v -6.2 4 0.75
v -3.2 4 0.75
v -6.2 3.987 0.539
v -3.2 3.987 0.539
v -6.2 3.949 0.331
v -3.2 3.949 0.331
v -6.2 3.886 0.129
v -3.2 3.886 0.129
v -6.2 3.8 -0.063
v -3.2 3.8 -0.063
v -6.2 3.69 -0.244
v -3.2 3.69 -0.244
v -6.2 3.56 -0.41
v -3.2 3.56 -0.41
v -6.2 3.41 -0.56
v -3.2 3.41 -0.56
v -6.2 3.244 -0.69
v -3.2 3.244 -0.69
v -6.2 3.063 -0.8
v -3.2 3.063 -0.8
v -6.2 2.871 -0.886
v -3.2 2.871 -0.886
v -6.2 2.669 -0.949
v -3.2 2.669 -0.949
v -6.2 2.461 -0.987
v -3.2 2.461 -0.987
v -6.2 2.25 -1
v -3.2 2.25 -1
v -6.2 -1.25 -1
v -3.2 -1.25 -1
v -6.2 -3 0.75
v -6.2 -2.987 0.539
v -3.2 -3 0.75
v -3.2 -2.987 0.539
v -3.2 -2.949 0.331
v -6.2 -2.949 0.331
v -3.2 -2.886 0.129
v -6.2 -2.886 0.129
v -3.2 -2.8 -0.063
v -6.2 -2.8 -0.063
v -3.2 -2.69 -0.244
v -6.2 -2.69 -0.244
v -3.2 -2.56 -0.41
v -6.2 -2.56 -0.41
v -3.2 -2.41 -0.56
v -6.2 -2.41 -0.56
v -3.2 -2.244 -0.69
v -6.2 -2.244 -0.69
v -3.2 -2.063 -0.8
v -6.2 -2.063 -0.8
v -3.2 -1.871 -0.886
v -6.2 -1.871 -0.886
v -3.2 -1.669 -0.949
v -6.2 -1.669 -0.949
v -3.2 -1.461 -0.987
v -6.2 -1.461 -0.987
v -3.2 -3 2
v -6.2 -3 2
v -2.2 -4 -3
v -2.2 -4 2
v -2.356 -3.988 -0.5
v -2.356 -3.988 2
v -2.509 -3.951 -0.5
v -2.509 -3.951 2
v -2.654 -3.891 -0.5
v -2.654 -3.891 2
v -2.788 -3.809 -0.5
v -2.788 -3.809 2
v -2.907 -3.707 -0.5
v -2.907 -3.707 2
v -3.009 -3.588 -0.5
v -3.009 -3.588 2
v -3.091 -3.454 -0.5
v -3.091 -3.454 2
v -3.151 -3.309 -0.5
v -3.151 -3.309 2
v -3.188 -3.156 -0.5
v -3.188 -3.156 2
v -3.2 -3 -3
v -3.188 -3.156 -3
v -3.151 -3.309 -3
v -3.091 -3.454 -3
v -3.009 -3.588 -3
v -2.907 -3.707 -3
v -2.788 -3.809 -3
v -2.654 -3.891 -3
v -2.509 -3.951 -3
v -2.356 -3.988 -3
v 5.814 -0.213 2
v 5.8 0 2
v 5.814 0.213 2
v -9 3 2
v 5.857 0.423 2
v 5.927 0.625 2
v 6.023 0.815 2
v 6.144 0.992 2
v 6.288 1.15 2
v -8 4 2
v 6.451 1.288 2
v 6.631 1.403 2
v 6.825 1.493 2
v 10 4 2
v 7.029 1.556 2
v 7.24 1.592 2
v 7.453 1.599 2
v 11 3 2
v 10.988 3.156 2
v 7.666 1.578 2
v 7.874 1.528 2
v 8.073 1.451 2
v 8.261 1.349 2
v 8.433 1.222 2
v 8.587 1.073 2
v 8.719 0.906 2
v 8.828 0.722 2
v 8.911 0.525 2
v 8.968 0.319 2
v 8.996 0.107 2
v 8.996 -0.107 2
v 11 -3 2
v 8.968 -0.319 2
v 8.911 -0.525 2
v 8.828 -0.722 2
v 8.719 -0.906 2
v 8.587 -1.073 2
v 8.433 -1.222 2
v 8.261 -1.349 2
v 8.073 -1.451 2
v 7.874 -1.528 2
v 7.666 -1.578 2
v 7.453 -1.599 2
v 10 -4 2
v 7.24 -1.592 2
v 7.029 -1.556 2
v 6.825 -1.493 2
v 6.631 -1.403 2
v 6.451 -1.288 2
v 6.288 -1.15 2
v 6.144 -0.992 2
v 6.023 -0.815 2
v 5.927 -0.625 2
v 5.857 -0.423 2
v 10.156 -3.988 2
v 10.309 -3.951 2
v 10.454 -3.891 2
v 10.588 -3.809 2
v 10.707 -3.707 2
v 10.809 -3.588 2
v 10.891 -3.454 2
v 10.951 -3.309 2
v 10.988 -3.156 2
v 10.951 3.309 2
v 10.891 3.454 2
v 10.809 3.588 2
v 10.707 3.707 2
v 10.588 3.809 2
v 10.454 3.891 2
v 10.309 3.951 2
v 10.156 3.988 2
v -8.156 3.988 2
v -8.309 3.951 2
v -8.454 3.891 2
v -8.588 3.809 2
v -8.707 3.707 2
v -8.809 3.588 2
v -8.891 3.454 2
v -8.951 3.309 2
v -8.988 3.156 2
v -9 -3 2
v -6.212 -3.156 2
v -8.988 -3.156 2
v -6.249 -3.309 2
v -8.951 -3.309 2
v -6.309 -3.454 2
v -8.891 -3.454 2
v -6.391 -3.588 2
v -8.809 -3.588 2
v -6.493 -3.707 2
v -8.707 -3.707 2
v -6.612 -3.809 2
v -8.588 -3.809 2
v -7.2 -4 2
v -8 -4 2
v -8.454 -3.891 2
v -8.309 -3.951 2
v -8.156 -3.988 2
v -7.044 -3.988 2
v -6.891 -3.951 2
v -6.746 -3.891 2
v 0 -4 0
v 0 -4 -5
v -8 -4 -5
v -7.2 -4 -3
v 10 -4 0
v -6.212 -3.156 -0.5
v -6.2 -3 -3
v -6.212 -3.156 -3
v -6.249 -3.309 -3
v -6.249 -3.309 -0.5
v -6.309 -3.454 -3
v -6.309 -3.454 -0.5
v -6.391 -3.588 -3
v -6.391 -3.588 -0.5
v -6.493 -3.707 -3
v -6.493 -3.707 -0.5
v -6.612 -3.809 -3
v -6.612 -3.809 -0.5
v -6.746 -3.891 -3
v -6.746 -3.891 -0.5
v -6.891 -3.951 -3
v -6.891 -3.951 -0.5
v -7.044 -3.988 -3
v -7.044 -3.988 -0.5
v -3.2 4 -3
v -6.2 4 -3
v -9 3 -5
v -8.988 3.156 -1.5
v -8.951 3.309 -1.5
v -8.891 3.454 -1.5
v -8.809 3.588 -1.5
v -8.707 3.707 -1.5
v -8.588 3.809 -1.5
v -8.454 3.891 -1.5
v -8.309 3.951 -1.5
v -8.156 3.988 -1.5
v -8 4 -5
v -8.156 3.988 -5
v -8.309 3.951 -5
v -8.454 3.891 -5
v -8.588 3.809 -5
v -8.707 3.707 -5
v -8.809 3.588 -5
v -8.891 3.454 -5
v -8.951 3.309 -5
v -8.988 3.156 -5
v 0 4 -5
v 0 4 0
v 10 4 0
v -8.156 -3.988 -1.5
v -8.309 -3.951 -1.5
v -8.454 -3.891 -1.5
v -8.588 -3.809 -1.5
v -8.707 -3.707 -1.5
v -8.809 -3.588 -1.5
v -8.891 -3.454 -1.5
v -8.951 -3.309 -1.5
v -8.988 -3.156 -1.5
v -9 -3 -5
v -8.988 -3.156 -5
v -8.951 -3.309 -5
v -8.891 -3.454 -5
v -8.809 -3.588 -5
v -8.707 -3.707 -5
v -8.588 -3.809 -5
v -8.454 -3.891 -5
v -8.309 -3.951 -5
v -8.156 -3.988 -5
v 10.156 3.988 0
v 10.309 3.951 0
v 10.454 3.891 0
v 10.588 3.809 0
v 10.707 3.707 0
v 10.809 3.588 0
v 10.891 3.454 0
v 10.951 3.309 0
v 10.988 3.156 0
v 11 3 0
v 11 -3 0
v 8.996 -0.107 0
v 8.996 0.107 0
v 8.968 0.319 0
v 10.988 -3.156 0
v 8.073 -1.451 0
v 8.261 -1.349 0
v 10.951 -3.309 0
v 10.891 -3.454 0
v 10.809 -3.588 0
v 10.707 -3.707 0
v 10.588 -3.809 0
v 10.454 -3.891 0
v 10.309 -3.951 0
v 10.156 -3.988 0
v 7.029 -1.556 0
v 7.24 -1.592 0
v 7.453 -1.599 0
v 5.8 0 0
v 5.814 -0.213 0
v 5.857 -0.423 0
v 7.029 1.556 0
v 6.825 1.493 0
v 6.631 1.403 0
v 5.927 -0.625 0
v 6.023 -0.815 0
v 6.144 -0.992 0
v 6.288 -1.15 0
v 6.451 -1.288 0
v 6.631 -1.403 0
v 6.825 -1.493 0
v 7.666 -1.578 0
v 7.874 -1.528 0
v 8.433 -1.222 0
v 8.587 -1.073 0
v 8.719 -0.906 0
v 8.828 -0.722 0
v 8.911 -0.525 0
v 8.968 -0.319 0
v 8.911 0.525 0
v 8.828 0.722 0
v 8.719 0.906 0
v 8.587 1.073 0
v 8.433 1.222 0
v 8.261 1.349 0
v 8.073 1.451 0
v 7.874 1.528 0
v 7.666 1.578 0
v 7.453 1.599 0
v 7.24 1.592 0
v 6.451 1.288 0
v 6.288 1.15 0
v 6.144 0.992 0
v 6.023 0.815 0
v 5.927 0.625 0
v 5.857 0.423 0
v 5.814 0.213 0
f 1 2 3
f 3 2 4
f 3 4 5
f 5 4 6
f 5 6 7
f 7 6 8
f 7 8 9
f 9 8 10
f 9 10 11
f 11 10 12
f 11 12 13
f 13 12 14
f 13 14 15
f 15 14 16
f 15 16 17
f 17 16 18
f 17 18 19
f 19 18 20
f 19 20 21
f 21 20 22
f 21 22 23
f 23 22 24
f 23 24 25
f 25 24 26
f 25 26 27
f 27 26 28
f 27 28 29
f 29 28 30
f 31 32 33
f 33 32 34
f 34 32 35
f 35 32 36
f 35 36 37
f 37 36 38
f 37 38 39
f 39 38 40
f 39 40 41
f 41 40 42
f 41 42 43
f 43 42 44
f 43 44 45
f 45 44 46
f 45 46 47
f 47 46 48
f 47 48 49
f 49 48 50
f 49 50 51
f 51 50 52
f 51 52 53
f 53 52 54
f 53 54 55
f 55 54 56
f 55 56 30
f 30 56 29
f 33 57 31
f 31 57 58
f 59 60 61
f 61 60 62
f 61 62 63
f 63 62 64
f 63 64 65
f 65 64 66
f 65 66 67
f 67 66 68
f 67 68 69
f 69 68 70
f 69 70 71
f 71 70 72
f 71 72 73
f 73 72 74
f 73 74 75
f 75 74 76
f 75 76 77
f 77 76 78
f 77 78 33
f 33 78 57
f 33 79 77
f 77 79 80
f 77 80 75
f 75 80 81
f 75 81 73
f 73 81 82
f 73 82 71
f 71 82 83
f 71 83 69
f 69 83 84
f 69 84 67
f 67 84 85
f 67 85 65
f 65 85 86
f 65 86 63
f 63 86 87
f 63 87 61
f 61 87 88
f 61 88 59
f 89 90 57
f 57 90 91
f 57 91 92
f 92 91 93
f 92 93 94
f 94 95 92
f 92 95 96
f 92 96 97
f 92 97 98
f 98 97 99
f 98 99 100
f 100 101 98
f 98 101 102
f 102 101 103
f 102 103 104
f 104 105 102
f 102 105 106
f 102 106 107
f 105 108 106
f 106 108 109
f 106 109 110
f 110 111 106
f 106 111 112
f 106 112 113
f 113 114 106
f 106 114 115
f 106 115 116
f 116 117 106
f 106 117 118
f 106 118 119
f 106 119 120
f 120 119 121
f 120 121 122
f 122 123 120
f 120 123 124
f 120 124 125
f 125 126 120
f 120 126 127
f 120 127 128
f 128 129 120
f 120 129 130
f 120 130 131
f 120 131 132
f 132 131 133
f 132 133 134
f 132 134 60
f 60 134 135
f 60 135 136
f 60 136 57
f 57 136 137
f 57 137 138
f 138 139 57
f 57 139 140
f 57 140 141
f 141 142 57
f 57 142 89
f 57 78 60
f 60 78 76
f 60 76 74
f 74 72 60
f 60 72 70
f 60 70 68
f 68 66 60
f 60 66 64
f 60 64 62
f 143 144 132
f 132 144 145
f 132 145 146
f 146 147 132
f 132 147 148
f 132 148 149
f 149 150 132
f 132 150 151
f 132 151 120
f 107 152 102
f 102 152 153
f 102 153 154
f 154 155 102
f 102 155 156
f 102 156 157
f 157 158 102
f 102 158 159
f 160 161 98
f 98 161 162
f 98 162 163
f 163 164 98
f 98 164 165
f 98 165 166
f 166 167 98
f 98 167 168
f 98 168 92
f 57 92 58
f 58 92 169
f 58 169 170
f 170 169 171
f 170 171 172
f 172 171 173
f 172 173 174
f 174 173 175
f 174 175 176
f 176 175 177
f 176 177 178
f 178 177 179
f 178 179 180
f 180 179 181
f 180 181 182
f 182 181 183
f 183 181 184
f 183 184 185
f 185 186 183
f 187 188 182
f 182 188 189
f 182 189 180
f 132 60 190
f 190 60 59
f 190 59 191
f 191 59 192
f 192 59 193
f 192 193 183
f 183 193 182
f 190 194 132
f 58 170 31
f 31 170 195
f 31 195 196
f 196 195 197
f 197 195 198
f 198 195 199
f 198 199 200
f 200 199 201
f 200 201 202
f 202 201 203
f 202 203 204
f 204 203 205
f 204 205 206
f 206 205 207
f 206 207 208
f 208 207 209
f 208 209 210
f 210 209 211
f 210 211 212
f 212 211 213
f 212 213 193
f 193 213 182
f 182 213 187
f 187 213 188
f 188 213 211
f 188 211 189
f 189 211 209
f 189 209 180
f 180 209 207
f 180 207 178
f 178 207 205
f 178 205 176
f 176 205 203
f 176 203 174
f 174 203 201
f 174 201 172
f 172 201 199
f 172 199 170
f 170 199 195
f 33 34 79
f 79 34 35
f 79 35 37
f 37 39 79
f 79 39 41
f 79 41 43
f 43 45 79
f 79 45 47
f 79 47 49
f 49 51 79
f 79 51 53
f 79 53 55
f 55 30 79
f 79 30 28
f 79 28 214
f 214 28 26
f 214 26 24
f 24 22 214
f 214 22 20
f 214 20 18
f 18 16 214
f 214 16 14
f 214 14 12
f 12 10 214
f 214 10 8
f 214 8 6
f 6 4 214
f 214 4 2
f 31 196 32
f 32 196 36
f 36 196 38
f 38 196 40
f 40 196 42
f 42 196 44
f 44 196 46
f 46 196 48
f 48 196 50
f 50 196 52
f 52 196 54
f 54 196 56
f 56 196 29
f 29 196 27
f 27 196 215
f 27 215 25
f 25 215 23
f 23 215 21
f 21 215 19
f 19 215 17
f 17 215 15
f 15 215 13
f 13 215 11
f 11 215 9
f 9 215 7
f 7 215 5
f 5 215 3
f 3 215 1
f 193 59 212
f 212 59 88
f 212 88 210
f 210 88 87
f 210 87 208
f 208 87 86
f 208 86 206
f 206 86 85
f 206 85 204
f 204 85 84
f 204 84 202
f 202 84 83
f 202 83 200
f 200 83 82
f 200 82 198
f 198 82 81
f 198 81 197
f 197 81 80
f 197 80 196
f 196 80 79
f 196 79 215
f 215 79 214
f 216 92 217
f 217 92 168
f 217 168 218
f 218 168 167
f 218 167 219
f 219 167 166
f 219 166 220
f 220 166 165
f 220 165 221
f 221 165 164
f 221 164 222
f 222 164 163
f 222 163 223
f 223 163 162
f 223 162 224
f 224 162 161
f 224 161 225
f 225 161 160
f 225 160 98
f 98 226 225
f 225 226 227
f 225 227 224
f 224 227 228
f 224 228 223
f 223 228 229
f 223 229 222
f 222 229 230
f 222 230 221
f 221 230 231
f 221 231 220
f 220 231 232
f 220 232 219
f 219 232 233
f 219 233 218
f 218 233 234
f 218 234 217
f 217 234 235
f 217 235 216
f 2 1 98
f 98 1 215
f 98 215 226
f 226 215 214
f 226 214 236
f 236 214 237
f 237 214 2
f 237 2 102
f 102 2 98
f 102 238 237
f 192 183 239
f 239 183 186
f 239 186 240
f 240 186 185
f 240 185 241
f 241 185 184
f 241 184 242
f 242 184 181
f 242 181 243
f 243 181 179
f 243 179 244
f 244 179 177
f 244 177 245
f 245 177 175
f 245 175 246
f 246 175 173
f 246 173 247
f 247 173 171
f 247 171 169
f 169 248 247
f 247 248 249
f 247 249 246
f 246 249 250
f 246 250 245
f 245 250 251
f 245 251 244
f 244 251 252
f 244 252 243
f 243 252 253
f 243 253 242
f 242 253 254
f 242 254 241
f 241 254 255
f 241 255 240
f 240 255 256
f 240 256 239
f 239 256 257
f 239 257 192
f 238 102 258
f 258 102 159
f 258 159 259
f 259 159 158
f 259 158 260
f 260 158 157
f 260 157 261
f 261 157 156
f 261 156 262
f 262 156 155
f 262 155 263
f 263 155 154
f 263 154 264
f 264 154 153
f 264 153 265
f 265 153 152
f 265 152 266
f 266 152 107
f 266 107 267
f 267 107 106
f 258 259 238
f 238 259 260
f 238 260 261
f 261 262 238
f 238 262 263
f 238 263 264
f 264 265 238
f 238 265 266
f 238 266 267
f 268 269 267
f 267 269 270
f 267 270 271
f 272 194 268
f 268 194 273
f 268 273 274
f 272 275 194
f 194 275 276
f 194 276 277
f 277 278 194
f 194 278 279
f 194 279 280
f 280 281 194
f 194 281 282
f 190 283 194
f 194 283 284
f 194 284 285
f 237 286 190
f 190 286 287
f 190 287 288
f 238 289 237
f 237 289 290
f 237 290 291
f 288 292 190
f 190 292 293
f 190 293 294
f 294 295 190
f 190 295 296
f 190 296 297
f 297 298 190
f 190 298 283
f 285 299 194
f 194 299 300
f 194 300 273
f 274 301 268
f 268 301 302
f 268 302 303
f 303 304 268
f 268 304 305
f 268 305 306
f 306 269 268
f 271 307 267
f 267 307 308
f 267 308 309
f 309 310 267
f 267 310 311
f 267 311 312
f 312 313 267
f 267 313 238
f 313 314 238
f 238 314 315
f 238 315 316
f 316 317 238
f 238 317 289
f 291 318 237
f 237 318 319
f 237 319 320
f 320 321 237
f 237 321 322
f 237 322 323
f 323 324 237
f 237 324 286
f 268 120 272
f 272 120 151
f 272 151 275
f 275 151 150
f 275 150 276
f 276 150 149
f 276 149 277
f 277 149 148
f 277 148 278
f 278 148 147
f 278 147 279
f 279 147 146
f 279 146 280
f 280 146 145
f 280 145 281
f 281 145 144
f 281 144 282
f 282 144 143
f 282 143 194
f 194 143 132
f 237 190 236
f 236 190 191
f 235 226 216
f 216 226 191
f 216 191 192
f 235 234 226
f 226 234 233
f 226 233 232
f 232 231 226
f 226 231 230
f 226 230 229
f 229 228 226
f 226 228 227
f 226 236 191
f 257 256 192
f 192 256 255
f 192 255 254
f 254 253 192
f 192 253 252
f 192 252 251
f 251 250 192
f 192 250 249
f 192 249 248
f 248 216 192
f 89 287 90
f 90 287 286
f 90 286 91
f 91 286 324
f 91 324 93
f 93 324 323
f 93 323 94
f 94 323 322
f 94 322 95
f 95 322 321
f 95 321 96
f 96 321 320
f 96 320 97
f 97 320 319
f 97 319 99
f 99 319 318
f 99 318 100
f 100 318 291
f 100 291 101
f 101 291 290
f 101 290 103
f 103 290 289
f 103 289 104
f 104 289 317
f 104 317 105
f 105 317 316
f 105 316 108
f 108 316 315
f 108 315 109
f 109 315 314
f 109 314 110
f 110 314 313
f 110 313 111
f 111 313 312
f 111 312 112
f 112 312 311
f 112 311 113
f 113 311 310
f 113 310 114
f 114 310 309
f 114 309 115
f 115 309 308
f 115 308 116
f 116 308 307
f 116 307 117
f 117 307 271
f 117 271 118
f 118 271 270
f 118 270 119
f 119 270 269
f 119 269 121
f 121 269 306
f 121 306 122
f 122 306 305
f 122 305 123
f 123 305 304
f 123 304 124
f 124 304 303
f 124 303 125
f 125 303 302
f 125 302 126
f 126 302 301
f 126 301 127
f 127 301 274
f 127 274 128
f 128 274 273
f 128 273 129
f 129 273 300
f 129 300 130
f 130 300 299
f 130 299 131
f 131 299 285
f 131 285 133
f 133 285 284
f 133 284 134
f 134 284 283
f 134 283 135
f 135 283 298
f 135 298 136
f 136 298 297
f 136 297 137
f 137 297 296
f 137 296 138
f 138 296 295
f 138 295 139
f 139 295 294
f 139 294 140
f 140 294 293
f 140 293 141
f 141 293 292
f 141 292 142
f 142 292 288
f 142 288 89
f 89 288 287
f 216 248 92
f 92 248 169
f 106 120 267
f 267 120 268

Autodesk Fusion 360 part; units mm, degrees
sketch "Sketch1" plane through (0, 0, 0) normal (0, 0, 1) x (1, 0, 0)
  line L0 (0, 0) -> (7.4, 0) construction
  circle A0 centre (7.4, 0) radius 1.6
  line L1 (9, -4) -> (-9, -4)
  line L2 (-9, -4) -> (-9, 4)
  line L3 (-9, 4) -> (9, 4)
  line L4 (9, -4) -> (-9, 4) construction
  line L5 (-9, -4) -> (9, 4) construction
  line L6 (9, -4) -> (11, -4)
  line L7 (11, -4) -> (11, 4)
  line L8 (11, 4) -> (9, 4)
  line L9 (0, -4) -> (0, 4)
  dimension "d1" = 7.4
  dimension "d2" = 3.2
  dimension "d3" = 8
  dimension "d4" = 2
extrude "Extrude1" add sketch "Sketch1" along normal blind 2
extrude "Extrude2" add sketch "Sketch1" against normal blind 5 contours L1 L2 L3 L9
fillet "Fillet1" radius 1 4 edges at (11, -4, 1) (11, 4, 1) (-9, -4, -1.5) (-9, 4, -1.5)
sketch "Sketch2" plane through (0, -4, 0) normal (0, -1, 0) x (1, 0, 0)
  line L0 (-8, 2) -> (-8, -5)
  line L1 (-8, -5) -> (0, -5)
  line L2 (0, -5) -> (0, 0)
  line L3 (0, 0) -> (10, 0)
  line L4 (10, 0) -> (10, 2)
  line L5 (10, 2) -> (-8, 2)
  line L6 (-6.2, -1) -> (-3.2, -1)
  line L7 (-3.2, -1) -> (-3.2, -3)
  line L8 (-3.2, -3) -> (-6.2, -3)
  line L9 (-6.2, -3) -> (-6.2, -1)
  dimension "d11" = 3
  dimension "d12" = 2
extrude "Extrude3" cut sketch "Sketch2" against normal blind 8 contours L6 L7 L8 L9
sketch "Sketch3" plane through (0, -4, 0) normal (0, -1, 0) x (1, 0, 0)
  line L0 (-3.2, -1) -> (-3.2, -3)
  line L1 (-3.2, -3) -> (-6.2, -3)
  line L2 (-6.2, -3) -> (-6.2, -1)
  line L3 (-6.2, -1) -> (-3.2, -1)
  line L4 (-8, 2) -> (-8, -5)
  line L5 (-8, -5) -> (0, -5)
  line L6 (0, -5) -> (0, 0)
  line L7 (0, 0) -> (10, 0)
  line L8 (10, 0) -> (10, 2)
  line L9 (10, 2) -> (-8, 2)
  line L10 (-6.2, -1) -> (-3.2, -1)
  line L11 (-3.2, -1) -> (-3.2, 2)
  line L12 (-3.2, 2) -> (-6.2, 2)
  line L13 (-6.2, 2) -> (-6.2, -1)
extrude "Extrude4" cut sketch "Sketch3" against normal blind 1 contours L3 L9 L10 L11 L12 L13
fillet "Fillet3" radius 1 2 edges at (-6.2, -4, -0.5) (-3.2, -4, -0.5)
fillet "Fillet4" radius 1.75 2 edges at (-4.7, -3, -1) (-4.7, 4, -1)
fillet "Fillet2" [suppressed]
